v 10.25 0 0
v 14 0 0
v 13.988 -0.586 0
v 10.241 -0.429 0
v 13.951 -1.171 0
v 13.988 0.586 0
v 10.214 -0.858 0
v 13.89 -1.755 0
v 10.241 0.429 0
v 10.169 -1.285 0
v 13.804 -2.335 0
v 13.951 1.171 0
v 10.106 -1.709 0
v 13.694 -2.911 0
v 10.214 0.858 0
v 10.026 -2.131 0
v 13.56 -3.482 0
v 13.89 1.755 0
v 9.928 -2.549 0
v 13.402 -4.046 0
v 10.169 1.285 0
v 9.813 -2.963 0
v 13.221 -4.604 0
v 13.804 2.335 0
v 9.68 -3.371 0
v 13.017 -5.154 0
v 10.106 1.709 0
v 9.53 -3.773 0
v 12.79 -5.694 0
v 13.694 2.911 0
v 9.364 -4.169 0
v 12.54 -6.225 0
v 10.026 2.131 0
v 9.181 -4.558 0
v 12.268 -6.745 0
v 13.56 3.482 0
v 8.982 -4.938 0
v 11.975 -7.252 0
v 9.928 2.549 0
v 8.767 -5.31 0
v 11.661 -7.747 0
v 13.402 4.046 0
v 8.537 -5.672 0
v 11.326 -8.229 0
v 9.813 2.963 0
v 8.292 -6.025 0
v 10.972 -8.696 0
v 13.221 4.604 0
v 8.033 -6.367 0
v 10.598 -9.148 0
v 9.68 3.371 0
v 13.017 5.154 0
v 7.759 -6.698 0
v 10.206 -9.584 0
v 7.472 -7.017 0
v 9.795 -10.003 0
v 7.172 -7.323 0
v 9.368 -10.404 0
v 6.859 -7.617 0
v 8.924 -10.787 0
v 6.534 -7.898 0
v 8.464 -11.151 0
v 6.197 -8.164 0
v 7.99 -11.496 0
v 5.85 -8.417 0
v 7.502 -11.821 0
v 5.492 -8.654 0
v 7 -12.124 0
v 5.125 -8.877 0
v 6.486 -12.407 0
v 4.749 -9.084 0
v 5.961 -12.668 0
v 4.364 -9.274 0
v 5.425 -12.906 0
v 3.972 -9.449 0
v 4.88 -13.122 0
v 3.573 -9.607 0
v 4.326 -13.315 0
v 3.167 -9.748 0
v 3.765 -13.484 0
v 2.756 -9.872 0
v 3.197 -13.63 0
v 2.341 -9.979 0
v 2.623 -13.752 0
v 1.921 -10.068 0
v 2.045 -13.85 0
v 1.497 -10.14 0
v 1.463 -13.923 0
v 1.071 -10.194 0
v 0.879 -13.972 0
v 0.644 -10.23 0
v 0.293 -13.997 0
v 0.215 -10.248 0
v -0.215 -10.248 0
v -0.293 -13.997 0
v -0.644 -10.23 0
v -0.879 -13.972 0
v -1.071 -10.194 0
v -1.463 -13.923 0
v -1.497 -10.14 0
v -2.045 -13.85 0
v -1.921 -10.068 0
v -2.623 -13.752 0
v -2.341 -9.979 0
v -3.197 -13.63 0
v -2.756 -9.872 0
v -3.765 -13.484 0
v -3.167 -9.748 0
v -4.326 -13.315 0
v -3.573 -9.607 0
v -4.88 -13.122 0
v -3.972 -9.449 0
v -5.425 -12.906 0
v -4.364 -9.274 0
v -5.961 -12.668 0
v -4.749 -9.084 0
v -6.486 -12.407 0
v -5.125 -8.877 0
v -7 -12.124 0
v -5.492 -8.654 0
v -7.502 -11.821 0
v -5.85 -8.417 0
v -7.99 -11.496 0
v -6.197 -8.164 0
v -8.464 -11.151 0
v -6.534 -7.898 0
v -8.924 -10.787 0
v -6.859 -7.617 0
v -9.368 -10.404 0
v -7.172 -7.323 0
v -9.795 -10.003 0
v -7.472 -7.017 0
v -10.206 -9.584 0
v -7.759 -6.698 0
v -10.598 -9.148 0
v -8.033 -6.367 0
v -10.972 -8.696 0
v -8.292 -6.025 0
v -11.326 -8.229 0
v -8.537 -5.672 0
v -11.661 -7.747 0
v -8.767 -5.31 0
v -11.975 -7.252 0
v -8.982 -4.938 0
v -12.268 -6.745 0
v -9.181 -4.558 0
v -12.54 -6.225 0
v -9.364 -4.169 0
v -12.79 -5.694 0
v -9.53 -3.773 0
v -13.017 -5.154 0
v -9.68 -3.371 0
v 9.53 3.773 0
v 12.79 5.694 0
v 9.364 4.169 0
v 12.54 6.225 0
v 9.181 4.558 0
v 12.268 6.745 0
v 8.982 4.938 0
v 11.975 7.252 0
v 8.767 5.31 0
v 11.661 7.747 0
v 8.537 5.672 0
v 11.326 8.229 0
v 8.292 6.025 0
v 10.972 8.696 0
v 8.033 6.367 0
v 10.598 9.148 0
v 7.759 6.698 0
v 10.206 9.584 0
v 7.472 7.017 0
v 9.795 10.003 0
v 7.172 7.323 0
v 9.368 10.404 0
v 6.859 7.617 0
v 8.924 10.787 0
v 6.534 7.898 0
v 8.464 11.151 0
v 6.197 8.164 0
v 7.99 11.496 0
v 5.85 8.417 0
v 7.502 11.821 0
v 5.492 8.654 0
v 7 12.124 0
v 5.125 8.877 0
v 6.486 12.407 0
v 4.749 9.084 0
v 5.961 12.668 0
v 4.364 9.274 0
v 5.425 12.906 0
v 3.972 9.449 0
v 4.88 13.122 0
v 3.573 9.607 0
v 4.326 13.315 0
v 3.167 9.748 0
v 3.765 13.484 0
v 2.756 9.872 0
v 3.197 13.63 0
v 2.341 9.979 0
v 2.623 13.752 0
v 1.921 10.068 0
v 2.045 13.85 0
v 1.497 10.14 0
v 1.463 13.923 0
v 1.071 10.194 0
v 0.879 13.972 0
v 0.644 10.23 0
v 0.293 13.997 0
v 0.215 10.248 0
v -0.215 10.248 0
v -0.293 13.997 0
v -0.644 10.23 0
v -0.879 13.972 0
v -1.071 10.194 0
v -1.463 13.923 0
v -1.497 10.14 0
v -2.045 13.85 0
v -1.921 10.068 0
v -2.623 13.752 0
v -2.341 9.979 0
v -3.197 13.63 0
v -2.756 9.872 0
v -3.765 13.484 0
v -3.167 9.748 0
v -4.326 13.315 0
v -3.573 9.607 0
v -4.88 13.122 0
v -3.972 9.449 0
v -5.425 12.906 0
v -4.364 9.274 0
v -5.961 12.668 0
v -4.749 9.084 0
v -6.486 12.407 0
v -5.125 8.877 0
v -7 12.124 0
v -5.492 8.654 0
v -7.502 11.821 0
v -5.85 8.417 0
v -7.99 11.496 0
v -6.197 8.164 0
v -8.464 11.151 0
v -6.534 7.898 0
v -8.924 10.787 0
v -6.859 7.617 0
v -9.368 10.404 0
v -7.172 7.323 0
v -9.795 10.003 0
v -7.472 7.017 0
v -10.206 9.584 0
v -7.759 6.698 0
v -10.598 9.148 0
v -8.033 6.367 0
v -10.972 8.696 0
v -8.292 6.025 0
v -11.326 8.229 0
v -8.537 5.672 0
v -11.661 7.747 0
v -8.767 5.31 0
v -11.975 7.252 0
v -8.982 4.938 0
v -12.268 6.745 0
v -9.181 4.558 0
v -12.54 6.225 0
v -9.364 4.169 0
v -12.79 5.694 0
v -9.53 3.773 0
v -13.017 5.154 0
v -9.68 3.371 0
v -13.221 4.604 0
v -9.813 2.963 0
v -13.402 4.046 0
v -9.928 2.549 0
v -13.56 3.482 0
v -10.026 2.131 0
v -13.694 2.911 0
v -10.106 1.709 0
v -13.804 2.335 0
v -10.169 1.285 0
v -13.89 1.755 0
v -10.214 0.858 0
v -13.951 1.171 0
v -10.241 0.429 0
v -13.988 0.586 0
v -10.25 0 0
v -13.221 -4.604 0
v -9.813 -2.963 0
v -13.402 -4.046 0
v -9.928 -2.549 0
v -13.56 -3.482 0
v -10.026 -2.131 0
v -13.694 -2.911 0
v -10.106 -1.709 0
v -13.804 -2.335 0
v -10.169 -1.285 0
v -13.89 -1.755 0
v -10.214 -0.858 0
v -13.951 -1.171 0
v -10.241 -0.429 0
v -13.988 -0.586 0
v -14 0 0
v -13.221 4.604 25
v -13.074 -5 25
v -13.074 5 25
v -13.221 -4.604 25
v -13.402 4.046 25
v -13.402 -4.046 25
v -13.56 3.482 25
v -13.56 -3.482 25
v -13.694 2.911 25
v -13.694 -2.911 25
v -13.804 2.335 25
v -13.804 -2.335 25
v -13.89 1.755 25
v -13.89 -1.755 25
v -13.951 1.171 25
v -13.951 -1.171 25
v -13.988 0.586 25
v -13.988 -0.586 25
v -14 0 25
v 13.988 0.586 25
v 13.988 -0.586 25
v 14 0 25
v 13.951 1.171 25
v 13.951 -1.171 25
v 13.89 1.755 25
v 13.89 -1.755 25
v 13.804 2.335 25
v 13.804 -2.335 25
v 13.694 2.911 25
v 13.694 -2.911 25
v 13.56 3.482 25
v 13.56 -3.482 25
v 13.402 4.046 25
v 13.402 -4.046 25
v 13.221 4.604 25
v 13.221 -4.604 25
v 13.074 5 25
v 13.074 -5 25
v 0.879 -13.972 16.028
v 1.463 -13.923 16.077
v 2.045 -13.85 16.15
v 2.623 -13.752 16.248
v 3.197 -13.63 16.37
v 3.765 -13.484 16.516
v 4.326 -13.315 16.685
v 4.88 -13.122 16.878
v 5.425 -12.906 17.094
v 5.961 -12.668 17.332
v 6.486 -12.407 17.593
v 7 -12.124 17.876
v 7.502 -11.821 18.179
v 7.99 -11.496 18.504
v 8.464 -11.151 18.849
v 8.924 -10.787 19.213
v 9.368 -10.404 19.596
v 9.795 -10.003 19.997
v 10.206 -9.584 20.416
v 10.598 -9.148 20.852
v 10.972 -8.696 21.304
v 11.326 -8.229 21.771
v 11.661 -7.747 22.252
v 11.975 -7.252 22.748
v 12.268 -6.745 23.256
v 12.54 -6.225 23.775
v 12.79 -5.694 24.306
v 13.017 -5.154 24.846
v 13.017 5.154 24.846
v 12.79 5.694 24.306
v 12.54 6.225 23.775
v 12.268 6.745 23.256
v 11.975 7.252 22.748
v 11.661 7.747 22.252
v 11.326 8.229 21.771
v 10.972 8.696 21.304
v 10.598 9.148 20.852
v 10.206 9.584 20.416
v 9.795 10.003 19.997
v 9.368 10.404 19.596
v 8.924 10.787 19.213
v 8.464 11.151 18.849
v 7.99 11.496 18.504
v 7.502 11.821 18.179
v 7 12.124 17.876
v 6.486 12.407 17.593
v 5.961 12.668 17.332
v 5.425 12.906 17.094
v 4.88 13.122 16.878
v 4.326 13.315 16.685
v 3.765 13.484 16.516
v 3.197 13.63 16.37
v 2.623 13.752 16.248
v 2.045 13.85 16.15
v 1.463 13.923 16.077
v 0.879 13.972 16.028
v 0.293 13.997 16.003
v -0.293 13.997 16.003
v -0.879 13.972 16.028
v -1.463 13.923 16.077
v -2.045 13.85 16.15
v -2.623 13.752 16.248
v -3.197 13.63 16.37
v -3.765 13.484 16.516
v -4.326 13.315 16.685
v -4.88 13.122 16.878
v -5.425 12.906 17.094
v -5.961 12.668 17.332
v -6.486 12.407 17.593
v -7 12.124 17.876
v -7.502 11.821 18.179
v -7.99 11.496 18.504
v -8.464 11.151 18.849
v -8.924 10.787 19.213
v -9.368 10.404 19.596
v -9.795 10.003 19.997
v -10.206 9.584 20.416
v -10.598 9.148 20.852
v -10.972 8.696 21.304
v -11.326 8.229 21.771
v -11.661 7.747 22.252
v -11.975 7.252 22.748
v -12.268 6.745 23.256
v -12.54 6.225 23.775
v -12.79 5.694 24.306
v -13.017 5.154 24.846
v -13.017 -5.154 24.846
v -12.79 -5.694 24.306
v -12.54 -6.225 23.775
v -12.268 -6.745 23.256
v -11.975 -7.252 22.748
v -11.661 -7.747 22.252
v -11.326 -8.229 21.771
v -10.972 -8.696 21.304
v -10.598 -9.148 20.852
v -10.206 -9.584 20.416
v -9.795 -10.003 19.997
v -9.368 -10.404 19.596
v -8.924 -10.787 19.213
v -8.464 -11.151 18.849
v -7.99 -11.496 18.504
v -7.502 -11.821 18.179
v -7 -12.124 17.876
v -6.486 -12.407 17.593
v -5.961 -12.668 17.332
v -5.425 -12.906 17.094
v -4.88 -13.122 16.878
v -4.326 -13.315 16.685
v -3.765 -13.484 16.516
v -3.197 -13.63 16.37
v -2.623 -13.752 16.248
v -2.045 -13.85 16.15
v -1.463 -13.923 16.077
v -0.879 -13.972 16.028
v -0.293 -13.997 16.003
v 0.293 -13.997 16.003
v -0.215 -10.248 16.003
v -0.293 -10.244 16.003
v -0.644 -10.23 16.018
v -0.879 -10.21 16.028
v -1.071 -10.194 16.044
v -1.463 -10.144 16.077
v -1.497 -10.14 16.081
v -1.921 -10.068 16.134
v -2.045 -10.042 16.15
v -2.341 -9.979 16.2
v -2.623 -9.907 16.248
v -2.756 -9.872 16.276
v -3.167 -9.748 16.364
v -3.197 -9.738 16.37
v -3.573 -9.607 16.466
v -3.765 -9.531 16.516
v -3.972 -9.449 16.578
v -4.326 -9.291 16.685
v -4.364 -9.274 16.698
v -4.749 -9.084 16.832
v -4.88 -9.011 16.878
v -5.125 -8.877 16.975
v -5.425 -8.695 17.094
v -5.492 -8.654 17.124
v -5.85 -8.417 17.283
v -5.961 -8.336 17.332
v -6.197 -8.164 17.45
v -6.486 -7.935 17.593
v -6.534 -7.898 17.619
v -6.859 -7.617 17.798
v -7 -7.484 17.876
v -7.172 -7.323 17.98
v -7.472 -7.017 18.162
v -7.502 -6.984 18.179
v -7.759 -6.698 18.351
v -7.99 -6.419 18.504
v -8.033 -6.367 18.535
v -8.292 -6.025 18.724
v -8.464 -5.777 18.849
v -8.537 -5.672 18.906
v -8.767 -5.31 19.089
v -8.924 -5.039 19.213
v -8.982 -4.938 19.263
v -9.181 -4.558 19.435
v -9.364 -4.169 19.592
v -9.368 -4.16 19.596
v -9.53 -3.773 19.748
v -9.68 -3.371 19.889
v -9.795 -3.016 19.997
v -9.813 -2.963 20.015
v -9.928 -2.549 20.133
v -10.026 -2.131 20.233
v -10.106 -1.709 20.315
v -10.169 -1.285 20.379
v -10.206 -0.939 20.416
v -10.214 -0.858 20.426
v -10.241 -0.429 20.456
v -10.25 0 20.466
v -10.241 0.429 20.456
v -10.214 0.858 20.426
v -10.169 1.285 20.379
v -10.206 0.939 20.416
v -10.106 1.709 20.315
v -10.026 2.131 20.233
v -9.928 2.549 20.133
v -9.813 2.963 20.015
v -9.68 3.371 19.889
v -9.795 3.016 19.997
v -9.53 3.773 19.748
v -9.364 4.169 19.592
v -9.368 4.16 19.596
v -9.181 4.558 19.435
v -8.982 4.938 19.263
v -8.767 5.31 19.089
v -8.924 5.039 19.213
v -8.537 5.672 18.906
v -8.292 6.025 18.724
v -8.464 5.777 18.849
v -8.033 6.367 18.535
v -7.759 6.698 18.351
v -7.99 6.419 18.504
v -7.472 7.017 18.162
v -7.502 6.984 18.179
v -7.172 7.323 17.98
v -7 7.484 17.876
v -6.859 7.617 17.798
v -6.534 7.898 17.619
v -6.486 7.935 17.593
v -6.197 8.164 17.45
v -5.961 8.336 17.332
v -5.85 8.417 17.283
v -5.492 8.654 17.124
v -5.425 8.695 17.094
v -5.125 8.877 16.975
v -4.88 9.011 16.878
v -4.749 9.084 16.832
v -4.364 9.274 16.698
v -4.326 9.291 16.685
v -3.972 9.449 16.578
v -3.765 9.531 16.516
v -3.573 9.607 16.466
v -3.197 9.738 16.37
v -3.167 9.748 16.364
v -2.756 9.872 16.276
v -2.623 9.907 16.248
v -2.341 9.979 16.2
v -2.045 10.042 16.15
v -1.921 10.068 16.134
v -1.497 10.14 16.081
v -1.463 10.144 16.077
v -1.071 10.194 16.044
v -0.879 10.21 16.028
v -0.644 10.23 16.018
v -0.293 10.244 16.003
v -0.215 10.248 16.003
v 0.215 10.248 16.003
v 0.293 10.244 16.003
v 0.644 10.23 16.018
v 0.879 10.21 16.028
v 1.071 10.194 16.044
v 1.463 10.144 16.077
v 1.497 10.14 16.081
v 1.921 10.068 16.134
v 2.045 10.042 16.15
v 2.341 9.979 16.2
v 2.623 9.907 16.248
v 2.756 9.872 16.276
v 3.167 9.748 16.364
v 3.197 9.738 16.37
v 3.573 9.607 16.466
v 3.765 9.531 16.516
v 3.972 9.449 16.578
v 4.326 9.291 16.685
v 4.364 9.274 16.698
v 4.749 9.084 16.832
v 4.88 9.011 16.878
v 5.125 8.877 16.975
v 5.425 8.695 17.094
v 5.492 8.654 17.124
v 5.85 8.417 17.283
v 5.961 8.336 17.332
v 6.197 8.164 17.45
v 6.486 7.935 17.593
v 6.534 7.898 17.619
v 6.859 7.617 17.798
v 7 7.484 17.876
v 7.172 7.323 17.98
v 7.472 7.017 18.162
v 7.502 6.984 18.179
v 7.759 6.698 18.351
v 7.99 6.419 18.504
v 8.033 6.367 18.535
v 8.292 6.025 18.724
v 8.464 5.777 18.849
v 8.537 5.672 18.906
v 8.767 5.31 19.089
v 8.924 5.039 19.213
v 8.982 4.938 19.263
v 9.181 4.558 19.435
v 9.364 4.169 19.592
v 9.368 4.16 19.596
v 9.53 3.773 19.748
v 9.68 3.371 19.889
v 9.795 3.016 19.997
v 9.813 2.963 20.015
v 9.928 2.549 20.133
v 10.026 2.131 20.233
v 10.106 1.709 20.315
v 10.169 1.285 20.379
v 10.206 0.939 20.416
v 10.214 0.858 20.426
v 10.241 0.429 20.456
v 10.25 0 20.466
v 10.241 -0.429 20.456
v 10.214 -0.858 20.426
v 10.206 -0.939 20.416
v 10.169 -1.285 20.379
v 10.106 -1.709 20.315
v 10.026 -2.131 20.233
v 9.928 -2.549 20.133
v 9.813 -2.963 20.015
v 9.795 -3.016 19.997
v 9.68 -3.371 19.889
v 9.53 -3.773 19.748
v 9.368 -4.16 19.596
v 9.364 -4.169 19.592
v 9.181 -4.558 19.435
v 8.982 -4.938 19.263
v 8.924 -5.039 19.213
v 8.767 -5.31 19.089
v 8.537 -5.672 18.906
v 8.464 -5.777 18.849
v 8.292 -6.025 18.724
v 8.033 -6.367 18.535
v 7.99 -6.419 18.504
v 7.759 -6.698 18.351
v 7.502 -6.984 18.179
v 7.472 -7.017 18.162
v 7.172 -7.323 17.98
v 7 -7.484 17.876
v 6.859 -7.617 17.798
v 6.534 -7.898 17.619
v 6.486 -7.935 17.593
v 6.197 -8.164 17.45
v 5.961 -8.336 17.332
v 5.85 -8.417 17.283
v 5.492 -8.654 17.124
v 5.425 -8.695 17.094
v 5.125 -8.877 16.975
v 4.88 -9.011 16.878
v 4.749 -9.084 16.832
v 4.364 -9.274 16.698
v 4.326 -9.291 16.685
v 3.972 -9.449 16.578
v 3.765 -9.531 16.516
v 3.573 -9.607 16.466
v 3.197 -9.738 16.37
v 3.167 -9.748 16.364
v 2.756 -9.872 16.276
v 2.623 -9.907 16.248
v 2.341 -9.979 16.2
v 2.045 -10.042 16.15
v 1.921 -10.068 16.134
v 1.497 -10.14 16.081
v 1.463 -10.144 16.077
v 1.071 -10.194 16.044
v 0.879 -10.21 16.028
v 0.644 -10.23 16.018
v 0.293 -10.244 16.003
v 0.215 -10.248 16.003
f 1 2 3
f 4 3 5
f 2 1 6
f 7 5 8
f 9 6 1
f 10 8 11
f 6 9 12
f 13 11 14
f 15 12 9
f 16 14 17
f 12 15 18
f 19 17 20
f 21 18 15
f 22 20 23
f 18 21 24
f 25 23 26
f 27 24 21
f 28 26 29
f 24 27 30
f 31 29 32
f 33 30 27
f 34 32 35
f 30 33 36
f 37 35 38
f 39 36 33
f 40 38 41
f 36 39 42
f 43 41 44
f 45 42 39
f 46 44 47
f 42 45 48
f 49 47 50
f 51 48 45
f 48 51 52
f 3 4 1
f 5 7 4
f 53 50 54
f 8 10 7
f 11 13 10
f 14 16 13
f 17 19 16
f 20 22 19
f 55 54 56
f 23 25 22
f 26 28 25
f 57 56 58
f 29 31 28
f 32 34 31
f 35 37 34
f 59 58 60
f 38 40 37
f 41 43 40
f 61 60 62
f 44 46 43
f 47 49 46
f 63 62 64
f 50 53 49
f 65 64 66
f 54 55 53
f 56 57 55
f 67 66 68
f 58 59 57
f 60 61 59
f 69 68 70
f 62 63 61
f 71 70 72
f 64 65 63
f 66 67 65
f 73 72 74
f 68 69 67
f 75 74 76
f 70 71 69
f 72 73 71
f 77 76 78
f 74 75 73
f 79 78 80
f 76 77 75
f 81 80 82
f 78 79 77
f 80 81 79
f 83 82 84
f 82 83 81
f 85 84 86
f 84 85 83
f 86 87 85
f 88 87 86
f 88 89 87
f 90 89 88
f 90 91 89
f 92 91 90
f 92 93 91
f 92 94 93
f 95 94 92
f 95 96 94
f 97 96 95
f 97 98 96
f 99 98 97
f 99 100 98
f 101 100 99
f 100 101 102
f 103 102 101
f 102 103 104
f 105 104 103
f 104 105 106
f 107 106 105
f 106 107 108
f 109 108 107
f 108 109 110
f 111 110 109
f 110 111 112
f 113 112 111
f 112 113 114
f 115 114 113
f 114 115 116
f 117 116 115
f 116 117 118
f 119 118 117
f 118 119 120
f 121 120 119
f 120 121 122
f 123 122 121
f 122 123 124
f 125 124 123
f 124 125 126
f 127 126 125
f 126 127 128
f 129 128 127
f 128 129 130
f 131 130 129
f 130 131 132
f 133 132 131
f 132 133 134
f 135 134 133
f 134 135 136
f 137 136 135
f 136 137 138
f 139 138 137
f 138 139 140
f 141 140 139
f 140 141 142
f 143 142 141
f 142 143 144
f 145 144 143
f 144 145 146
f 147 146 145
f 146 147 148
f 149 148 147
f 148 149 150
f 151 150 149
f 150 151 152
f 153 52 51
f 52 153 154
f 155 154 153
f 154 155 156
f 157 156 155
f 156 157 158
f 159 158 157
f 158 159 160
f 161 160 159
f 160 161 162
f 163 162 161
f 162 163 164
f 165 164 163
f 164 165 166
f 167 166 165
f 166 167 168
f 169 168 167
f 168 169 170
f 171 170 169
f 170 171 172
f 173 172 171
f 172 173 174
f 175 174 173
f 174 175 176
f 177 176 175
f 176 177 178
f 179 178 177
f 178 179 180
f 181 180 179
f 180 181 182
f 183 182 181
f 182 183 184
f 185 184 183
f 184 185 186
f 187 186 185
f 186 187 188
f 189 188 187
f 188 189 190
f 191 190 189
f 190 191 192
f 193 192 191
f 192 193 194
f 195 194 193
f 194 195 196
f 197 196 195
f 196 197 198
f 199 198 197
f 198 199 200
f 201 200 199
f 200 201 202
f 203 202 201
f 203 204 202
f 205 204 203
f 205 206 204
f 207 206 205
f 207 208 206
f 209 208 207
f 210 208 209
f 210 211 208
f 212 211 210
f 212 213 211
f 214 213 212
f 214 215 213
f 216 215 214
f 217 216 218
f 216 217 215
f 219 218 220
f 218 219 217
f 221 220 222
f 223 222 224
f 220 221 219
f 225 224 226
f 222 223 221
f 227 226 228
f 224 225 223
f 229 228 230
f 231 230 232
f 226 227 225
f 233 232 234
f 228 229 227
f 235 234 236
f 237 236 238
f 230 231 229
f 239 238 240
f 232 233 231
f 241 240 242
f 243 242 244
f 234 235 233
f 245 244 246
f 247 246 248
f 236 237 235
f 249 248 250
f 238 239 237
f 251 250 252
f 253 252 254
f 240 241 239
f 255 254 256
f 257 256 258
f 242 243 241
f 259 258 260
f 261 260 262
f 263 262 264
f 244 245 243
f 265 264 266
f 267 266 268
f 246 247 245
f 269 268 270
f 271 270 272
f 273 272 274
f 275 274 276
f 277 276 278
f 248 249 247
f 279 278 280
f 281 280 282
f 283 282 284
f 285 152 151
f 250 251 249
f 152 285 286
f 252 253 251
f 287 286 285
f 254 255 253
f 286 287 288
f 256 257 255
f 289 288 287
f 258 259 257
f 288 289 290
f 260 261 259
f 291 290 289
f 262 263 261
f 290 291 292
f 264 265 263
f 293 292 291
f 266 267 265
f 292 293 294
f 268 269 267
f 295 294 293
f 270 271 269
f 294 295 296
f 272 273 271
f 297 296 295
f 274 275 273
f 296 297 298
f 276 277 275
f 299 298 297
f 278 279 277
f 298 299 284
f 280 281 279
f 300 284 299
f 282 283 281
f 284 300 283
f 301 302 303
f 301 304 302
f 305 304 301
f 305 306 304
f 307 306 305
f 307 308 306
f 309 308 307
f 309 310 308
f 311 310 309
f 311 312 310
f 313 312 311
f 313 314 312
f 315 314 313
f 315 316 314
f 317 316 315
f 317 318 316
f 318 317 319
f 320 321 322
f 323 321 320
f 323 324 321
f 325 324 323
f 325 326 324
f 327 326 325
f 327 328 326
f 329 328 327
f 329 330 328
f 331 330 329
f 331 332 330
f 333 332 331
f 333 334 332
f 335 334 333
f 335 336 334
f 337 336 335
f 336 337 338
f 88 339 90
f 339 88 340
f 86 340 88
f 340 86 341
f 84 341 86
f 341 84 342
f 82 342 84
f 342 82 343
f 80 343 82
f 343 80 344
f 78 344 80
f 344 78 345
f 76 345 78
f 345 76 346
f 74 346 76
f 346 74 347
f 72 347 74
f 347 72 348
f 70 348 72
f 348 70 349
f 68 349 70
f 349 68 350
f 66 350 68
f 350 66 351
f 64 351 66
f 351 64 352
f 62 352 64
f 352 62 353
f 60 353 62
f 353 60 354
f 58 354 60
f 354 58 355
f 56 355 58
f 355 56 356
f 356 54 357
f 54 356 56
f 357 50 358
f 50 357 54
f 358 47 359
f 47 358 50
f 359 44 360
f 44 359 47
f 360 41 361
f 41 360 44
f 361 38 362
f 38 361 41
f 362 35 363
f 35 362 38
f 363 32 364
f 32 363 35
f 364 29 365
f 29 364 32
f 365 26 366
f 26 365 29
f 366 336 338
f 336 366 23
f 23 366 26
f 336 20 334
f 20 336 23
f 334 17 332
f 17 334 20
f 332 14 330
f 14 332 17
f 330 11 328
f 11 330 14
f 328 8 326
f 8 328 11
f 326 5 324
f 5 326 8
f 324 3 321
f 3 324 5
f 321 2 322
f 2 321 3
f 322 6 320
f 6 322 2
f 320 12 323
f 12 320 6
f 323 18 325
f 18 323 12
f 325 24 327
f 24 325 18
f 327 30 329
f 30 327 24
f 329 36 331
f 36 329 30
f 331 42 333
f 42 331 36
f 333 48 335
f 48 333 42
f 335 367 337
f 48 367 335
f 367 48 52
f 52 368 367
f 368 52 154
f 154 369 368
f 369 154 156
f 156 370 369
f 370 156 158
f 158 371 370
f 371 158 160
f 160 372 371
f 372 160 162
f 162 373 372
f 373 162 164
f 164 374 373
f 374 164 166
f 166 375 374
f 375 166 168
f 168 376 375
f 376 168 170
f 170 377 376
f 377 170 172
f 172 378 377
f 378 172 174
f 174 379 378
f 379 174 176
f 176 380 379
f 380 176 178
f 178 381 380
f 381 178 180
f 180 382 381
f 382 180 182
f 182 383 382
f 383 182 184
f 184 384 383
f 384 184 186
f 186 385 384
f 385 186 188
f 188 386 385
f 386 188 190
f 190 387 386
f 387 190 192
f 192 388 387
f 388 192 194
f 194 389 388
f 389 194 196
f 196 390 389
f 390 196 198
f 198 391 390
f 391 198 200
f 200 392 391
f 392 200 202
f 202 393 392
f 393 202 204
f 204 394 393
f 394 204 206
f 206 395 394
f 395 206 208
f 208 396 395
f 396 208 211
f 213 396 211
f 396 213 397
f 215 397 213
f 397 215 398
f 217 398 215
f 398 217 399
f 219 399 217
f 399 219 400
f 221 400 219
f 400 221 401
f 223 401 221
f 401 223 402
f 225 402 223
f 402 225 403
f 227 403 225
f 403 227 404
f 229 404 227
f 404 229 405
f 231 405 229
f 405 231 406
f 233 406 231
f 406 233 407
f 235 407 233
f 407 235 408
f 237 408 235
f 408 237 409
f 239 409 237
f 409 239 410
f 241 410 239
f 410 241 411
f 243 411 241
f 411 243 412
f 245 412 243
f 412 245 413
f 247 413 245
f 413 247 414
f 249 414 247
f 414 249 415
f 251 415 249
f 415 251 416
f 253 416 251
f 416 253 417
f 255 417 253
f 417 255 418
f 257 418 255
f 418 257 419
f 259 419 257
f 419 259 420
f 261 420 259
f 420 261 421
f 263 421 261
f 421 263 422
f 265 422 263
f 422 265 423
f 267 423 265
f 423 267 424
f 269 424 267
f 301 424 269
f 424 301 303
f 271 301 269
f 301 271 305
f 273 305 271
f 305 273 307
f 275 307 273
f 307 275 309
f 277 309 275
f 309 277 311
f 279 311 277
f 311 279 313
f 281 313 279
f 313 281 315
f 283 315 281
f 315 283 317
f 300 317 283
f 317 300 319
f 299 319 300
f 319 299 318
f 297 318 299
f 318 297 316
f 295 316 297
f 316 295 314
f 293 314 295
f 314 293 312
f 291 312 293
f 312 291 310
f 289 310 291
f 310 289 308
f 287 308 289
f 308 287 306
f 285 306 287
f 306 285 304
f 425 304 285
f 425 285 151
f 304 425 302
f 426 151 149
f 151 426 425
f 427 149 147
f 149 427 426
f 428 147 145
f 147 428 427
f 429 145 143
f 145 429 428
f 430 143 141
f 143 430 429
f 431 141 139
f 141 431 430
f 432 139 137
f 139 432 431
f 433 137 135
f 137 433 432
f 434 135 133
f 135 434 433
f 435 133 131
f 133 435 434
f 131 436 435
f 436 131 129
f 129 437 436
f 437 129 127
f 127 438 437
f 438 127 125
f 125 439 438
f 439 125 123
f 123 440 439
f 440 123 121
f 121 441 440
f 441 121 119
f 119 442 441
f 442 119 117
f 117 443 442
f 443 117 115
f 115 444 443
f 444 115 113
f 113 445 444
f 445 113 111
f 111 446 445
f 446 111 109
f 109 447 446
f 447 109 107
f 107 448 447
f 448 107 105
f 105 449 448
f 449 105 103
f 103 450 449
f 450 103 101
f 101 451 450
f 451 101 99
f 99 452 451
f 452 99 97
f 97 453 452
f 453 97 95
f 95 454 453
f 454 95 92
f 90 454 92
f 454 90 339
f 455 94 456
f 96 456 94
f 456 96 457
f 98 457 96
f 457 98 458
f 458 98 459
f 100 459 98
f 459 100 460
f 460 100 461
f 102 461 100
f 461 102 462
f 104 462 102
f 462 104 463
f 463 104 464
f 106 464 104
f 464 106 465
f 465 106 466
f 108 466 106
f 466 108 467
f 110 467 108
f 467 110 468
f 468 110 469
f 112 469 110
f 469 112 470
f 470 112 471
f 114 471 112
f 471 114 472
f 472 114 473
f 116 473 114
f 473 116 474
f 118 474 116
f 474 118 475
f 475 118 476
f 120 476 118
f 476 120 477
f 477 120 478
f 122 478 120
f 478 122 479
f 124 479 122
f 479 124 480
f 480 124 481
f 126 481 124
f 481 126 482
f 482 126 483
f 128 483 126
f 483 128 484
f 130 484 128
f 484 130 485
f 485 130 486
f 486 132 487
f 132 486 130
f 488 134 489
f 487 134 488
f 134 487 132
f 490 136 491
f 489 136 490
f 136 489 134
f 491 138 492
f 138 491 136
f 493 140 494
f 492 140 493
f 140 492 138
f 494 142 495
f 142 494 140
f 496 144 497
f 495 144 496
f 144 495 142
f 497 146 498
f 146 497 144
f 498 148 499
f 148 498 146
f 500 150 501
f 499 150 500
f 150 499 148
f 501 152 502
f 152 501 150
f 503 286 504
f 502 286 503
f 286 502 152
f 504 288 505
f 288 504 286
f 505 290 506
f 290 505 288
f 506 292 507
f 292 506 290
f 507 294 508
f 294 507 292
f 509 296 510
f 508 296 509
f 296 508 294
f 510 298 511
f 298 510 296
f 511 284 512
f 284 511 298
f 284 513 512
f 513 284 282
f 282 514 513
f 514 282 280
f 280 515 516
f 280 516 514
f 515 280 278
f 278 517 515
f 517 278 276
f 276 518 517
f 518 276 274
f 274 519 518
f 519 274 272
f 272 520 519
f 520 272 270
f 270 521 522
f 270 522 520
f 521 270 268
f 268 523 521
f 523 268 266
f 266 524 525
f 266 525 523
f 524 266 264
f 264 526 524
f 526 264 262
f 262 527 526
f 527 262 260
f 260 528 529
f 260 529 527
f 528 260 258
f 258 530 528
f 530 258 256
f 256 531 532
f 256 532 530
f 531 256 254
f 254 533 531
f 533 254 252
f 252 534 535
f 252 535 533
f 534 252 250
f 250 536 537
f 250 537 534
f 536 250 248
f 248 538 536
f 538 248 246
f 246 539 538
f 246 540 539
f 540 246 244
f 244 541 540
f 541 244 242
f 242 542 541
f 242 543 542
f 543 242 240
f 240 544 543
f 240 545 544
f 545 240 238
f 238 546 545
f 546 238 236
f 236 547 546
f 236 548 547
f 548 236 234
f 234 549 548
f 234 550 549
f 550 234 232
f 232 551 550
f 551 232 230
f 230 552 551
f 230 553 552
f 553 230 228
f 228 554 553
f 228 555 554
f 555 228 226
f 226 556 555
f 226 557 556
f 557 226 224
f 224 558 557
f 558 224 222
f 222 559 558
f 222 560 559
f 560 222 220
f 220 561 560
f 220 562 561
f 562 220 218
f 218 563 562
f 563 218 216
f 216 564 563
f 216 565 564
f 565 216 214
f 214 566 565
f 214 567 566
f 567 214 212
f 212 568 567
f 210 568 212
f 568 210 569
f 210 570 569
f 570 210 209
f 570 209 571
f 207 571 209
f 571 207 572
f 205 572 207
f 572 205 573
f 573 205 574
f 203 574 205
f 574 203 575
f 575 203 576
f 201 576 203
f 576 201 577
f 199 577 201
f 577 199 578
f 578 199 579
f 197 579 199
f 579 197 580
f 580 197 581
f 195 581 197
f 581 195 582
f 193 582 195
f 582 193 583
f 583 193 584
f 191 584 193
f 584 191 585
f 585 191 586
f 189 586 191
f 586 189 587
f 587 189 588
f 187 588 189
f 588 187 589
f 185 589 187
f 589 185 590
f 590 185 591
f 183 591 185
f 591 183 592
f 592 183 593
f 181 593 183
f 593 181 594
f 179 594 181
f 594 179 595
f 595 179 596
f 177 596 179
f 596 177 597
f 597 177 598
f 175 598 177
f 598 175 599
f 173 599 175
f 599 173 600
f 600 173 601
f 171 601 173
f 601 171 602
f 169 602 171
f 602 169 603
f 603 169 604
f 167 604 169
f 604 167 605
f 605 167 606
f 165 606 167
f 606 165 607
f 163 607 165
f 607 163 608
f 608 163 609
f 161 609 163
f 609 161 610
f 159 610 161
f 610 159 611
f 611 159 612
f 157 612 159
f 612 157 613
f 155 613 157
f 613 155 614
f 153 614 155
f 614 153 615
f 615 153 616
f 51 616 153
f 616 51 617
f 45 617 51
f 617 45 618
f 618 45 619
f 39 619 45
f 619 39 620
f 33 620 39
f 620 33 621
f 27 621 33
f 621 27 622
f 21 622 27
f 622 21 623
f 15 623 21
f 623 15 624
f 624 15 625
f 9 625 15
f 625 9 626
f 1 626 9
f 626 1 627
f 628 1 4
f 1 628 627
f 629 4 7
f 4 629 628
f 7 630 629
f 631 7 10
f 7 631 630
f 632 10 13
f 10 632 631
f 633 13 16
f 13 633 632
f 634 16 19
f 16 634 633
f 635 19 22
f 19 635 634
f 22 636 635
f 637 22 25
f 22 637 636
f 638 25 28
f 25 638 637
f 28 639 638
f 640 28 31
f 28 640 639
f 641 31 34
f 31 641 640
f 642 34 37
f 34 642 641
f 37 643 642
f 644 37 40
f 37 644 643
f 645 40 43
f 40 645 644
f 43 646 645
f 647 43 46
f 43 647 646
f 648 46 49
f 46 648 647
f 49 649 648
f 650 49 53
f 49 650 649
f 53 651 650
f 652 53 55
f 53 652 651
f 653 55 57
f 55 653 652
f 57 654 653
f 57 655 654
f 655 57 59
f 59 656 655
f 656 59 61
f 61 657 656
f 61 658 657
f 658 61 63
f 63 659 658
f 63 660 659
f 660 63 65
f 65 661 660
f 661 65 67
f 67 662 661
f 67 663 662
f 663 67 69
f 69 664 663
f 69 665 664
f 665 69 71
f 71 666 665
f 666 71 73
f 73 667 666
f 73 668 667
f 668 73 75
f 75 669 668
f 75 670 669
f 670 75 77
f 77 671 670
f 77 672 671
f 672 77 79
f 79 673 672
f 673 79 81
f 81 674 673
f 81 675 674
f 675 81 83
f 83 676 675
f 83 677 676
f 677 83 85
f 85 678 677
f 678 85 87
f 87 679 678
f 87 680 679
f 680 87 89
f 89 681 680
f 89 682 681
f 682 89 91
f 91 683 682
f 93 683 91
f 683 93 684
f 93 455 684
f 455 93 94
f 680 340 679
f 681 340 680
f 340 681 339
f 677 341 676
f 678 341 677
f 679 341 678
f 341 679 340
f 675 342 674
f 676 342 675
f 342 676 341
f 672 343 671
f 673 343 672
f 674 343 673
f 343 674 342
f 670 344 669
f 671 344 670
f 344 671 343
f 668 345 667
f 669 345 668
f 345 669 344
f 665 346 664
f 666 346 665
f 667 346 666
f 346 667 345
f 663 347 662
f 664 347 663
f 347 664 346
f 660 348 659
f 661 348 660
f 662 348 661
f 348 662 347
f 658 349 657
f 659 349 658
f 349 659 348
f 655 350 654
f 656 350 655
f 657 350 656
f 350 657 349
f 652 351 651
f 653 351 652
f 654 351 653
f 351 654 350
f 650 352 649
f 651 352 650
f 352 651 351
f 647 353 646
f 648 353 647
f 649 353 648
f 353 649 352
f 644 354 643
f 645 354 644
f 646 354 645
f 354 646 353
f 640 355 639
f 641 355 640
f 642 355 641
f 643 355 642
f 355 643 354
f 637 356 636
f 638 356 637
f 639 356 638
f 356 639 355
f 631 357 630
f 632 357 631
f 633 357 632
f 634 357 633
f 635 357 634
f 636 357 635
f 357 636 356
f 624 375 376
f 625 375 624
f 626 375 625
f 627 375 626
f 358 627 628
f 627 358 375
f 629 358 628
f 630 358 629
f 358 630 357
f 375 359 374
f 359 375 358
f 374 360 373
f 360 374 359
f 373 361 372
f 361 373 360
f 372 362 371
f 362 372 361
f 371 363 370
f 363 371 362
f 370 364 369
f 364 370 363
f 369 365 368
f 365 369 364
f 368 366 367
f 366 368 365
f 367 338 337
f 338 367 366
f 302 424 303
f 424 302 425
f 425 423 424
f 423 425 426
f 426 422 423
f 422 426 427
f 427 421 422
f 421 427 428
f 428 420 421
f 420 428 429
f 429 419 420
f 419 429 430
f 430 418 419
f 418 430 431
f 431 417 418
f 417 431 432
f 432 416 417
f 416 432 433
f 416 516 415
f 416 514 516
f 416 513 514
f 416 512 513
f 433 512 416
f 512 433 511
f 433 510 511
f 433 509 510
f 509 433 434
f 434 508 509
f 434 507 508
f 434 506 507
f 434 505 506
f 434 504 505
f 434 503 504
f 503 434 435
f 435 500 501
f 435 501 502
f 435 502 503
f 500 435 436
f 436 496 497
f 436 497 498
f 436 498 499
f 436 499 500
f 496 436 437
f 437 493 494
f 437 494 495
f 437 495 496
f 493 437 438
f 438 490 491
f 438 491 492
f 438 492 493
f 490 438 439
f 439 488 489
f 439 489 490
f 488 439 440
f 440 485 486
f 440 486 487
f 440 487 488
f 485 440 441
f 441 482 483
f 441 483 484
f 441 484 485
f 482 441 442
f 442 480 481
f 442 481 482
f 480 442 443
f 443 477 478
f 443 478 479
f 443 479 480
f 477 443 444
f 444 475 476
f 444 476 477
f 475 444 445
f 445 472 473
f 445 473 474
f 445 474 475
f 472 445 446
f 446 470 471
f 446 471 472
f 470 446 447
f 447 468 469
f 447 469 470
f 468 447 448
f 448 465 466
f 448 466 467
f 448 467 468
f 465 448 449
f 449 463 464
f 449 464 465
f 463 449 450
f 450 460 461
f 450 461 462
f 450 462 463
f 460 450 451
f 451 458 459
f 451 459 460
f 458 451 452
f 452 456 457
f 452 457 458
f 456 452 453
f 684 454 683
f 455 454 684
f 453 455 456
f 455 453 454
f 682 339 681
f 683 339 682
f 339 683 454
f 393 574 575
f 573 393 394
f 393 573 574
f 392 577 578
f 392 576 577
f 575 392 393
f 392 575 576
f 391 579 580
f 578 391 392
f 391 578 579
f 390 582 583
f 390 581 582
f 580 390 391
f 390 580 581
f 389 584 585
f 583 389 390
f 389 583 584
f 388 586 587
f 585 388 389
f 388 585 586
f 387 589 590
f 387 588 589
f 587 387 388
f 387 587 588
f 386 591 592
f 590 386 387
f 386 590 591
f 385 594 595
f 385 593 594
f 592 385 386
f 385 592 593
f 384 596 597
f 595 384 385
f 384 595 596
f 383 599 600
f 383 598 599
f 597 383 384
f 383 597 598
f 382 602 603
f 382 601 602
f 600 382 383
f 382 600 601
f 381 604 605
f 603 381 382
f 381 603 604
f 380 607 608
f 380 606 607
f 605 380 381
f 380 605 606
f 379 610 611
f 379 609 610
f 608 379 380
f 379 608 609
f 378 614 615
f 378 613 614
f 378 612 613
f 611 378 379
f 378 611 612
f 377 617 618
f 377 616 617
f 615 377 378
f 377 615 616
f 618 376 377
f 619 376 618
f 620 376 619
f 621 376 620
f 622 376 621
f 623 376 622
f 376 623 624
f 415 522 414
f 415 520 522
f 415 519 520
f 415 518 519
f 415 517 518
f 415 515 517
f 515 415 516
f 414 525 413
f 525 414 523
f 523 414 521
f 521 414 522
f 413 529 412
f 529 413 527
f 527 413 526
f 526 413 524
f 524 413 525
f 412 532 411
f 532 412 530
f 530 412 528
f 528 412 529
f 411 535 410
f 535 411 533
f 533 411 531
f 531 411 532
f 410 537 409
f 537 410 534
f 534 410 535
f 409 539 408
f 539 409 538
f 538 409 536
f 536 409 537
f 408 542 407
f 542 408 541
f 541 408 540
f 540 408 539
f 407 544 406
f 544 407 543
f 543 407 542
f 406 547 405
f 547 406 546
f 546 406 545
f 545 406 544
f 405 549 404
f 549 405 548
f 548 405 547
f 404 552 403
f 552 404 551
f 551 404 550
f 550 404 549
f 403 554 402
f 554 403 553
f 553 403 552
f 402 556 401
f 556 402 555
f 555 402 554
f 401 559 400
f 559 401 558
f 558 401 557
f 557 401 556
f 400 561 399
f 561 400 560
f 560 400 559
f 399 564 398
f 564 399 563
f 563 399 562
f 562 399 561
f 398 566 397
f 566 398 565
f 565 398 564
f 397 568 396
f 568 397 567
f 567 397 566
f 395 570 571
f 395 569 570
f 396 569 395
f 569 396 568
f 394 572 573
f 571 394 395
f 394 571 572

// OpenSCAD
$fn=150;

difference(){
linear_extrude(25)
difference(){
circle(28/2);
circle(20.5/2);}

translate([0,0,30])
rotate([90,0,0]) 
linear_extrude(14)
difference(){
circle(28/2);
circle(10/2);}

translate([0,14,30])
rotate([90,0,0]) 
linear_extrude(14)
difference(){
circle(28/2);
circle(10/2);}




}





/*
translate([0,0,30])
rotate([90,0,0]) 
linear_extrude(12.5)
difference(){
circle(25/2);
circle(10/2);}


/*
translate([0,0,30])
rotate([90,0,0]) 
linear_extrude(12.5)
difference(){
circle(25/2);
circle(10/2);}*/
